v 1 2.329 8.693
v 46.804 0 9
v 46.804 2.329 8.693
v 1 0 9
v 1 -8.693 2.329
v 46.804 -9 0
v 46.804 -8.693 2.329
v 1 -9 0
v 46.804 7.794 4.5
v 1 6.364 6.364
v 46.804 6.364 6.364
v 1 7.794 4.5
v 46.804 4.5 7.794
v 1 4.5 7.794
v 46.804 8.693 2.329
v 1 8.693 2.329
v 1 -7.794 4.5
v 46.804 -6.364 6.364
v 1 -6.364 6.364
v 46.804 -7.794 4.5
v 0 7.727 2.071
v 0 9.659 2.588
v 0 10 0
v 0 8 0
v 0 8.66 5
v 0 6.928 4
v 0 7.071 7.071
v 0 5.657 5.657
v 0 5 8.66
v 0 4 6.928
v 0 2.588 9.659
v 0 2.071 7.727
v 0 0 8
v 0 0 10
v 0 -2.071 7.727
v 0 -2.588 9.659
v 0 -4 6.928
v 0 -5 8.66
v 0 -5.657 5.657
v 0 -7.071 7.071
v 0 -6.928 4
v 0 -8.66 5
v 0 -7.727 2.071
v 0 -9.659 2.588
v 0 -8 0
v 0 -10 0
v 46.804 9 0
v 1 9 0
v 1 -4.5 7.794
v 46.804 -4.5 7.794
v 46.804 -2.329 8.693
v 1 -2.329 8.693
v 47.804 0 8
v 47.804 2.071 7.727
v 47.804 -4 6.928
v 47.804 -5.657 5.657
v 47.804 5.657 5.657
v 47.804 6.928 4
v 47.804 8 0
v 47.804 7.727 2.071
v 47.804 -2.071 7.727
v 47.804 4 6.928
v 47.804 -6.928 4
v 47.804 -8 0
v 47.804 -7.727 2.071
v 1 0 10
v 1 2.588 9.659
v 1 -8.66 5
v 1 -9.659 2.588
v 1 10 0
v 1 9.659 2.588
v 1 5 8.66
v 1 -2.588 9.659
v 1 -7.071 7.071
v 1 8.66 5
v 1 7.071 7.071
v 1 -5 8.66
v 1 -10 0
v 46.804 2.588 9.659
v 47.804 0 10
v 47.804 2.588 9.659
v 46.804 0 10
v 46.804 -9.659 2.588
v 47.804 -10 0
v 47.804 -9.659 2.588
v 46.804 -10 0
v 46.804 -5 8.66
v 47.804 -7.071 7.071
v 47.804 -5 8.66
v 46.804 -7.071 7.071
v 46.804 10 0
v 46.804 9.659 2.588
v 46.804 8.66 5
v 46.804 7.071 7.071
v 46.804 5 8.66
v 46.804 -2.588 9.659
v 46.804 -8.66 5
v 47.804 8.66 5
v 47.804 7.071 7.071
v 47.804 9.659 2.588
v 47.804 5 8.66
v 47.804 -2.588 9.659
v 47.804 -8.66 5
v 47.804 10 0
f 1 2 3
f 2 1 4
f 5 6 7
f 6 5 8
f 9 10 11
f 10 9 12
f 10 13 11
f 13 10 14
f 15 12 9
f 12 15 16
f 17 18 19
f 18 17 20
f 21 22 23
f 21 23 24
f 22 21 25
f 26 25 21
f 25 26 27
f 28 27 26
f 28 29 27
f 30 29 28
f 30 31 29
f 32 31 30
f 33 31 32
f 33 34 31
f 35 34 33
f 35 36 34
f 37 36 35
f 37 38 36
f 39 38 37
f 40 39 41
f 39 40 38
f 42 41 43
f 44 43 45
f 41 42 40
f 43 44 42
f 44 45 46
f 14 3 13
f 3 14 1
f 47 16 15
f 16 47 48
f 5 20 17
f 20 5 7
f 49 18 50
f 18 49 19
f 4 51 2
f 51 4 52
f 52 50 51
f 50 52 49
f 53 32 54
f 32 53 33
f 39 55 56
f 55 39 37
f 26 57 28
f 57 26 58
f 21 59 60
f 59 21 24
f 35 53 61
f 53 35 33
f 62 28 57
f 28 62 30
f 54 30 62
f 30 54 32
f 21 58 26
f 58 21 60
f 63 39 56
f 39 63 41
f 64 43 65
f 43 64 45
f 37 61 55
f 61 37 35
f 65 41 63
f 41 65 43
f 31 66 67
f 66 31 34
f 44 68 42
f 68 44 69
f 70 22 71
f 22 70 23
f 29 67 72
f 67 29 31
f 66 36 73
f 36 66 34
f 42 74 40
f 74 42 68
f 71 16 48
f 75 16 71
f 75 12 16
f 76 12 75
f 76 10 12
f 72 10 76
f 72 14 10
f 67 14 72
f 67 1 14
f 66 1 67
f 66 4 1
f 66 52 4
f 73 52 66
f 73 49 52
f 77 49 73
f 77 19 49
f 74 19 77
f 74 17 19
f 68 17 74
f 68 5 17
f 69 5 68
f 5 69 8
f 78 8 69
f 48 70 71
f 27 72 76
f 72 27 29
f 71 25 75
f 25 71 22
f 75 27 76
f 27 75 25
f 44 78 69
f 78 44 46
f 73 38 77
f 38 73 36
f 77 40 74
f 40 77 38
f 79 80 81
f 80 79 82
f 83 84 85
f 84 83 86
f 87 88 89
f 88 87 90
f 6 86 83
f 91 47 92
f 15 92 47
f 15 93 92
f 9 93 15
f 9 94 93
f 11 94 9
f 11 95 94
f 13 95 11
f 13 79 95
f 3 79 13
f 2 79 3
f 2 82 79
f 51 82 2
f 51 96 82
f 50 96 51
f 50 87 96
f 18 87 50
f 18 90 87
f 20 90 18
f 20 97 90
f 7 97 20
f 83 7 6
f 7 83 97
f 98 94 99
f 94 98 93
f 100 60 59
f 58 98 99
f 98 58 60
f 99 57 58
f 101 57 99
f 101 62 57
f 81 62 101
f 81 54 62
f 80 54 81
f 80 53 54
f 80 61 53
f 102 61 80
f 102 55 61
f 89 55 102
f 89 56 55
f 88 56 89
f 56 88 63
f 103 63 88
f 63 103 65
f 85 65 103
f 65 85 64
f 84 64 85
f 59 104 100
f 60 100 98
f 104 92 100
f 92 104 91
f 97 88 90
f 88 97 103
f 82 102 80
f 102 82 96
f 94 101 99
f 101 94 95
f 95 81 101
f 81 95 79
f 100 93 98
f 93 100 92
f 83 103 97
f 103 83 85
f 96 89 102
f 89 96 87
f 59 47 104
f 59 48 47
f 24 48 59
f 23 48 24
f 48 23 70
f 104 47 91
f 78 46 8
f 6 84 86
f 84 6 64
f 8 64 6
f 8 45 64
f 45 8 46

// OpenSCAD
// file: ../build_environments.scad
// build_environments.scad: modules to build level sections
//

module pool(diameter=10.0, wall_height=2.0, step_width=3.0, connections=[])
{
    difference() {
        union() {
        difference() {
            cylinder(h=0.5,r1=diameter+step_width,r2=diameter+step_width,$fn=48);
            translate([0,0,-0.1])
                cylinder(h=0.7,r1=diameter,r2=diameter,$fn=48);
        }
        difference() {
            cylinder(h=wall_height,r1=diameter+step_width+1.0,r2=diameter+step_width+1.0,$fn=48);
            translate([0,0,-0.1])
                cylinder(h=wall_height+0.2,r1=diameter+step_width,r2=diameter+step_width,$fn=48);
        }
        }
    
        for (c = connections)
        {
            rotate([0,90,0]) {
                angle = atan2(c[1],c[0]);
                rotate([-angle,0,0]) {
                    cylinder(h=diameter+5.0,r1=c[2],r2=c[2],$fn=48);
                }
            }
        }
    }
}

module straight(length=10.0, width=2.0, dy1=0.0, dy2=0.0, dz=0.0)
{
    dims = [0, 0, 0, 0, 0, (dz/length)];
    matrix = [
        [ 1, dims[0], dims[1], 0 ],
        [ dims[2], 1, dims[4], 0 ],
        [ dims[5], dims[3], 1, 0 ],
        [ 0, 0, 0, 1 ]
    ];
    multmatrix(matrix)
    difference() {
        translate([dy1,0,0])
        union() {
            rotate([0,90,0]) {
                difference() {
                    cylinder(h=(length-dy1-dy2),r1=width+1.0,r2=width+1.0,$fn=24);
                    translate([0,0,-0.1])
                        cylinder(h=(length-dy1-dy2+0.2),r1=width,r2=width,$fn=24);
                }
                difference() {
                    cylinder(h=1.0,r1=width+2.0,r2=width+2.0,$fn=24);
                    translate([0,0,-0.1])
                        cylinder(h=1.2,r1=width,r2=width,$fn=24);
                }
                translate([0,0,(length-dy1-dy2)-1.0]) {
                    difference() {
                        cylinder(h=1.0,r1=width+2.0,r2=width+2.0,$fn=24);
                        translate([0,0,-0.1])
                            cylinder(h=1.2,r1=width,r2=width,$fn=24);
                    }
                }
            }
        }
        translate([0,0,-(2*width+4.0)/2])
            cube([3*length,3*length,2*width+4.0],center=true);
    }
}

module curve(p0=[0,0], center=[0,0], dir=1, angle=0.0, width=2.0)
{
    radius = sqrt((p0[0]-center[0])*(p0[0]-center[0]) + (p0[1]-center[1])*(p0[1]-center[1]));
    if (dir == 0) {
        difference() {
            rotate([0,0,-90])
            difference() {
                rotate_extrude(angle = angle, convexity = 10, $fn=32)
                    translate([radius, 0, 0])
                        circle(r = width+1.0,$fn=24);
                rotate([0,0,-1.0])
                    rotate_extrude(angle = angle+2.0, convexity = 10, $fn=32)
                        translate([radius, 0, 0])
                            circle(r = width,$fn=24);
            }
            translate([0,0,-(2*width+4.0)/2])
                cube([5*radius,5*radius,2*width+4.0],center=true);
        }
    }
    else {
        difference() {
            rotate([0,0,90])
            difference() {
                rotate_extrude(angle = -angle, convexity = 10, $fn=32)
                    translate([radius, 0, 0])
                        circle(r = width+1.0,$fn=24);
                rotate([0,0,1.0])
                    rotate_extrude(angle = -angle-2.0, convexity = 10, $fn=32)
                        translate([radius, 0, 0])
                            circle(r = width,$fn=24);
            }
            translate([0,0,-(2*width+4.0)/2])
                cube([5*radius,5*radius,2*width+4.0],center=true);
        }
    }

}

// test pool
//pool(diameter=12.0000, wall_height=3.0000, step_width=3.0000, connections=[[0.0000,-26.0000,2.0000], [23.6074,0.0000,2.0000]]);

// test straight, slope
//straight(length=26.0000, width=2.0000, dy1=11.8322, dy2=6.7082, dz=0.0000);
//straight(length=29.1549, width=12.0000, dy1=0.0000, dy2=0.0000, dz=-15.0000);

// test curve
//curve(p0=[23.6074, 0.0000], center=[23.6074, 5.0000], dir=0, angle=60.1011, width=2.0000);
//curve(p0=[33.6426, 12.4219], center=[37.9771, 9.9295], dir=1, angle=120.4627, width=2.0000);
// main file
use <../build_environments.scad>;
straight(length=56.7487, width=8.0000, dy1=0.0000, dy2=8.9443, dz=0.0000);
